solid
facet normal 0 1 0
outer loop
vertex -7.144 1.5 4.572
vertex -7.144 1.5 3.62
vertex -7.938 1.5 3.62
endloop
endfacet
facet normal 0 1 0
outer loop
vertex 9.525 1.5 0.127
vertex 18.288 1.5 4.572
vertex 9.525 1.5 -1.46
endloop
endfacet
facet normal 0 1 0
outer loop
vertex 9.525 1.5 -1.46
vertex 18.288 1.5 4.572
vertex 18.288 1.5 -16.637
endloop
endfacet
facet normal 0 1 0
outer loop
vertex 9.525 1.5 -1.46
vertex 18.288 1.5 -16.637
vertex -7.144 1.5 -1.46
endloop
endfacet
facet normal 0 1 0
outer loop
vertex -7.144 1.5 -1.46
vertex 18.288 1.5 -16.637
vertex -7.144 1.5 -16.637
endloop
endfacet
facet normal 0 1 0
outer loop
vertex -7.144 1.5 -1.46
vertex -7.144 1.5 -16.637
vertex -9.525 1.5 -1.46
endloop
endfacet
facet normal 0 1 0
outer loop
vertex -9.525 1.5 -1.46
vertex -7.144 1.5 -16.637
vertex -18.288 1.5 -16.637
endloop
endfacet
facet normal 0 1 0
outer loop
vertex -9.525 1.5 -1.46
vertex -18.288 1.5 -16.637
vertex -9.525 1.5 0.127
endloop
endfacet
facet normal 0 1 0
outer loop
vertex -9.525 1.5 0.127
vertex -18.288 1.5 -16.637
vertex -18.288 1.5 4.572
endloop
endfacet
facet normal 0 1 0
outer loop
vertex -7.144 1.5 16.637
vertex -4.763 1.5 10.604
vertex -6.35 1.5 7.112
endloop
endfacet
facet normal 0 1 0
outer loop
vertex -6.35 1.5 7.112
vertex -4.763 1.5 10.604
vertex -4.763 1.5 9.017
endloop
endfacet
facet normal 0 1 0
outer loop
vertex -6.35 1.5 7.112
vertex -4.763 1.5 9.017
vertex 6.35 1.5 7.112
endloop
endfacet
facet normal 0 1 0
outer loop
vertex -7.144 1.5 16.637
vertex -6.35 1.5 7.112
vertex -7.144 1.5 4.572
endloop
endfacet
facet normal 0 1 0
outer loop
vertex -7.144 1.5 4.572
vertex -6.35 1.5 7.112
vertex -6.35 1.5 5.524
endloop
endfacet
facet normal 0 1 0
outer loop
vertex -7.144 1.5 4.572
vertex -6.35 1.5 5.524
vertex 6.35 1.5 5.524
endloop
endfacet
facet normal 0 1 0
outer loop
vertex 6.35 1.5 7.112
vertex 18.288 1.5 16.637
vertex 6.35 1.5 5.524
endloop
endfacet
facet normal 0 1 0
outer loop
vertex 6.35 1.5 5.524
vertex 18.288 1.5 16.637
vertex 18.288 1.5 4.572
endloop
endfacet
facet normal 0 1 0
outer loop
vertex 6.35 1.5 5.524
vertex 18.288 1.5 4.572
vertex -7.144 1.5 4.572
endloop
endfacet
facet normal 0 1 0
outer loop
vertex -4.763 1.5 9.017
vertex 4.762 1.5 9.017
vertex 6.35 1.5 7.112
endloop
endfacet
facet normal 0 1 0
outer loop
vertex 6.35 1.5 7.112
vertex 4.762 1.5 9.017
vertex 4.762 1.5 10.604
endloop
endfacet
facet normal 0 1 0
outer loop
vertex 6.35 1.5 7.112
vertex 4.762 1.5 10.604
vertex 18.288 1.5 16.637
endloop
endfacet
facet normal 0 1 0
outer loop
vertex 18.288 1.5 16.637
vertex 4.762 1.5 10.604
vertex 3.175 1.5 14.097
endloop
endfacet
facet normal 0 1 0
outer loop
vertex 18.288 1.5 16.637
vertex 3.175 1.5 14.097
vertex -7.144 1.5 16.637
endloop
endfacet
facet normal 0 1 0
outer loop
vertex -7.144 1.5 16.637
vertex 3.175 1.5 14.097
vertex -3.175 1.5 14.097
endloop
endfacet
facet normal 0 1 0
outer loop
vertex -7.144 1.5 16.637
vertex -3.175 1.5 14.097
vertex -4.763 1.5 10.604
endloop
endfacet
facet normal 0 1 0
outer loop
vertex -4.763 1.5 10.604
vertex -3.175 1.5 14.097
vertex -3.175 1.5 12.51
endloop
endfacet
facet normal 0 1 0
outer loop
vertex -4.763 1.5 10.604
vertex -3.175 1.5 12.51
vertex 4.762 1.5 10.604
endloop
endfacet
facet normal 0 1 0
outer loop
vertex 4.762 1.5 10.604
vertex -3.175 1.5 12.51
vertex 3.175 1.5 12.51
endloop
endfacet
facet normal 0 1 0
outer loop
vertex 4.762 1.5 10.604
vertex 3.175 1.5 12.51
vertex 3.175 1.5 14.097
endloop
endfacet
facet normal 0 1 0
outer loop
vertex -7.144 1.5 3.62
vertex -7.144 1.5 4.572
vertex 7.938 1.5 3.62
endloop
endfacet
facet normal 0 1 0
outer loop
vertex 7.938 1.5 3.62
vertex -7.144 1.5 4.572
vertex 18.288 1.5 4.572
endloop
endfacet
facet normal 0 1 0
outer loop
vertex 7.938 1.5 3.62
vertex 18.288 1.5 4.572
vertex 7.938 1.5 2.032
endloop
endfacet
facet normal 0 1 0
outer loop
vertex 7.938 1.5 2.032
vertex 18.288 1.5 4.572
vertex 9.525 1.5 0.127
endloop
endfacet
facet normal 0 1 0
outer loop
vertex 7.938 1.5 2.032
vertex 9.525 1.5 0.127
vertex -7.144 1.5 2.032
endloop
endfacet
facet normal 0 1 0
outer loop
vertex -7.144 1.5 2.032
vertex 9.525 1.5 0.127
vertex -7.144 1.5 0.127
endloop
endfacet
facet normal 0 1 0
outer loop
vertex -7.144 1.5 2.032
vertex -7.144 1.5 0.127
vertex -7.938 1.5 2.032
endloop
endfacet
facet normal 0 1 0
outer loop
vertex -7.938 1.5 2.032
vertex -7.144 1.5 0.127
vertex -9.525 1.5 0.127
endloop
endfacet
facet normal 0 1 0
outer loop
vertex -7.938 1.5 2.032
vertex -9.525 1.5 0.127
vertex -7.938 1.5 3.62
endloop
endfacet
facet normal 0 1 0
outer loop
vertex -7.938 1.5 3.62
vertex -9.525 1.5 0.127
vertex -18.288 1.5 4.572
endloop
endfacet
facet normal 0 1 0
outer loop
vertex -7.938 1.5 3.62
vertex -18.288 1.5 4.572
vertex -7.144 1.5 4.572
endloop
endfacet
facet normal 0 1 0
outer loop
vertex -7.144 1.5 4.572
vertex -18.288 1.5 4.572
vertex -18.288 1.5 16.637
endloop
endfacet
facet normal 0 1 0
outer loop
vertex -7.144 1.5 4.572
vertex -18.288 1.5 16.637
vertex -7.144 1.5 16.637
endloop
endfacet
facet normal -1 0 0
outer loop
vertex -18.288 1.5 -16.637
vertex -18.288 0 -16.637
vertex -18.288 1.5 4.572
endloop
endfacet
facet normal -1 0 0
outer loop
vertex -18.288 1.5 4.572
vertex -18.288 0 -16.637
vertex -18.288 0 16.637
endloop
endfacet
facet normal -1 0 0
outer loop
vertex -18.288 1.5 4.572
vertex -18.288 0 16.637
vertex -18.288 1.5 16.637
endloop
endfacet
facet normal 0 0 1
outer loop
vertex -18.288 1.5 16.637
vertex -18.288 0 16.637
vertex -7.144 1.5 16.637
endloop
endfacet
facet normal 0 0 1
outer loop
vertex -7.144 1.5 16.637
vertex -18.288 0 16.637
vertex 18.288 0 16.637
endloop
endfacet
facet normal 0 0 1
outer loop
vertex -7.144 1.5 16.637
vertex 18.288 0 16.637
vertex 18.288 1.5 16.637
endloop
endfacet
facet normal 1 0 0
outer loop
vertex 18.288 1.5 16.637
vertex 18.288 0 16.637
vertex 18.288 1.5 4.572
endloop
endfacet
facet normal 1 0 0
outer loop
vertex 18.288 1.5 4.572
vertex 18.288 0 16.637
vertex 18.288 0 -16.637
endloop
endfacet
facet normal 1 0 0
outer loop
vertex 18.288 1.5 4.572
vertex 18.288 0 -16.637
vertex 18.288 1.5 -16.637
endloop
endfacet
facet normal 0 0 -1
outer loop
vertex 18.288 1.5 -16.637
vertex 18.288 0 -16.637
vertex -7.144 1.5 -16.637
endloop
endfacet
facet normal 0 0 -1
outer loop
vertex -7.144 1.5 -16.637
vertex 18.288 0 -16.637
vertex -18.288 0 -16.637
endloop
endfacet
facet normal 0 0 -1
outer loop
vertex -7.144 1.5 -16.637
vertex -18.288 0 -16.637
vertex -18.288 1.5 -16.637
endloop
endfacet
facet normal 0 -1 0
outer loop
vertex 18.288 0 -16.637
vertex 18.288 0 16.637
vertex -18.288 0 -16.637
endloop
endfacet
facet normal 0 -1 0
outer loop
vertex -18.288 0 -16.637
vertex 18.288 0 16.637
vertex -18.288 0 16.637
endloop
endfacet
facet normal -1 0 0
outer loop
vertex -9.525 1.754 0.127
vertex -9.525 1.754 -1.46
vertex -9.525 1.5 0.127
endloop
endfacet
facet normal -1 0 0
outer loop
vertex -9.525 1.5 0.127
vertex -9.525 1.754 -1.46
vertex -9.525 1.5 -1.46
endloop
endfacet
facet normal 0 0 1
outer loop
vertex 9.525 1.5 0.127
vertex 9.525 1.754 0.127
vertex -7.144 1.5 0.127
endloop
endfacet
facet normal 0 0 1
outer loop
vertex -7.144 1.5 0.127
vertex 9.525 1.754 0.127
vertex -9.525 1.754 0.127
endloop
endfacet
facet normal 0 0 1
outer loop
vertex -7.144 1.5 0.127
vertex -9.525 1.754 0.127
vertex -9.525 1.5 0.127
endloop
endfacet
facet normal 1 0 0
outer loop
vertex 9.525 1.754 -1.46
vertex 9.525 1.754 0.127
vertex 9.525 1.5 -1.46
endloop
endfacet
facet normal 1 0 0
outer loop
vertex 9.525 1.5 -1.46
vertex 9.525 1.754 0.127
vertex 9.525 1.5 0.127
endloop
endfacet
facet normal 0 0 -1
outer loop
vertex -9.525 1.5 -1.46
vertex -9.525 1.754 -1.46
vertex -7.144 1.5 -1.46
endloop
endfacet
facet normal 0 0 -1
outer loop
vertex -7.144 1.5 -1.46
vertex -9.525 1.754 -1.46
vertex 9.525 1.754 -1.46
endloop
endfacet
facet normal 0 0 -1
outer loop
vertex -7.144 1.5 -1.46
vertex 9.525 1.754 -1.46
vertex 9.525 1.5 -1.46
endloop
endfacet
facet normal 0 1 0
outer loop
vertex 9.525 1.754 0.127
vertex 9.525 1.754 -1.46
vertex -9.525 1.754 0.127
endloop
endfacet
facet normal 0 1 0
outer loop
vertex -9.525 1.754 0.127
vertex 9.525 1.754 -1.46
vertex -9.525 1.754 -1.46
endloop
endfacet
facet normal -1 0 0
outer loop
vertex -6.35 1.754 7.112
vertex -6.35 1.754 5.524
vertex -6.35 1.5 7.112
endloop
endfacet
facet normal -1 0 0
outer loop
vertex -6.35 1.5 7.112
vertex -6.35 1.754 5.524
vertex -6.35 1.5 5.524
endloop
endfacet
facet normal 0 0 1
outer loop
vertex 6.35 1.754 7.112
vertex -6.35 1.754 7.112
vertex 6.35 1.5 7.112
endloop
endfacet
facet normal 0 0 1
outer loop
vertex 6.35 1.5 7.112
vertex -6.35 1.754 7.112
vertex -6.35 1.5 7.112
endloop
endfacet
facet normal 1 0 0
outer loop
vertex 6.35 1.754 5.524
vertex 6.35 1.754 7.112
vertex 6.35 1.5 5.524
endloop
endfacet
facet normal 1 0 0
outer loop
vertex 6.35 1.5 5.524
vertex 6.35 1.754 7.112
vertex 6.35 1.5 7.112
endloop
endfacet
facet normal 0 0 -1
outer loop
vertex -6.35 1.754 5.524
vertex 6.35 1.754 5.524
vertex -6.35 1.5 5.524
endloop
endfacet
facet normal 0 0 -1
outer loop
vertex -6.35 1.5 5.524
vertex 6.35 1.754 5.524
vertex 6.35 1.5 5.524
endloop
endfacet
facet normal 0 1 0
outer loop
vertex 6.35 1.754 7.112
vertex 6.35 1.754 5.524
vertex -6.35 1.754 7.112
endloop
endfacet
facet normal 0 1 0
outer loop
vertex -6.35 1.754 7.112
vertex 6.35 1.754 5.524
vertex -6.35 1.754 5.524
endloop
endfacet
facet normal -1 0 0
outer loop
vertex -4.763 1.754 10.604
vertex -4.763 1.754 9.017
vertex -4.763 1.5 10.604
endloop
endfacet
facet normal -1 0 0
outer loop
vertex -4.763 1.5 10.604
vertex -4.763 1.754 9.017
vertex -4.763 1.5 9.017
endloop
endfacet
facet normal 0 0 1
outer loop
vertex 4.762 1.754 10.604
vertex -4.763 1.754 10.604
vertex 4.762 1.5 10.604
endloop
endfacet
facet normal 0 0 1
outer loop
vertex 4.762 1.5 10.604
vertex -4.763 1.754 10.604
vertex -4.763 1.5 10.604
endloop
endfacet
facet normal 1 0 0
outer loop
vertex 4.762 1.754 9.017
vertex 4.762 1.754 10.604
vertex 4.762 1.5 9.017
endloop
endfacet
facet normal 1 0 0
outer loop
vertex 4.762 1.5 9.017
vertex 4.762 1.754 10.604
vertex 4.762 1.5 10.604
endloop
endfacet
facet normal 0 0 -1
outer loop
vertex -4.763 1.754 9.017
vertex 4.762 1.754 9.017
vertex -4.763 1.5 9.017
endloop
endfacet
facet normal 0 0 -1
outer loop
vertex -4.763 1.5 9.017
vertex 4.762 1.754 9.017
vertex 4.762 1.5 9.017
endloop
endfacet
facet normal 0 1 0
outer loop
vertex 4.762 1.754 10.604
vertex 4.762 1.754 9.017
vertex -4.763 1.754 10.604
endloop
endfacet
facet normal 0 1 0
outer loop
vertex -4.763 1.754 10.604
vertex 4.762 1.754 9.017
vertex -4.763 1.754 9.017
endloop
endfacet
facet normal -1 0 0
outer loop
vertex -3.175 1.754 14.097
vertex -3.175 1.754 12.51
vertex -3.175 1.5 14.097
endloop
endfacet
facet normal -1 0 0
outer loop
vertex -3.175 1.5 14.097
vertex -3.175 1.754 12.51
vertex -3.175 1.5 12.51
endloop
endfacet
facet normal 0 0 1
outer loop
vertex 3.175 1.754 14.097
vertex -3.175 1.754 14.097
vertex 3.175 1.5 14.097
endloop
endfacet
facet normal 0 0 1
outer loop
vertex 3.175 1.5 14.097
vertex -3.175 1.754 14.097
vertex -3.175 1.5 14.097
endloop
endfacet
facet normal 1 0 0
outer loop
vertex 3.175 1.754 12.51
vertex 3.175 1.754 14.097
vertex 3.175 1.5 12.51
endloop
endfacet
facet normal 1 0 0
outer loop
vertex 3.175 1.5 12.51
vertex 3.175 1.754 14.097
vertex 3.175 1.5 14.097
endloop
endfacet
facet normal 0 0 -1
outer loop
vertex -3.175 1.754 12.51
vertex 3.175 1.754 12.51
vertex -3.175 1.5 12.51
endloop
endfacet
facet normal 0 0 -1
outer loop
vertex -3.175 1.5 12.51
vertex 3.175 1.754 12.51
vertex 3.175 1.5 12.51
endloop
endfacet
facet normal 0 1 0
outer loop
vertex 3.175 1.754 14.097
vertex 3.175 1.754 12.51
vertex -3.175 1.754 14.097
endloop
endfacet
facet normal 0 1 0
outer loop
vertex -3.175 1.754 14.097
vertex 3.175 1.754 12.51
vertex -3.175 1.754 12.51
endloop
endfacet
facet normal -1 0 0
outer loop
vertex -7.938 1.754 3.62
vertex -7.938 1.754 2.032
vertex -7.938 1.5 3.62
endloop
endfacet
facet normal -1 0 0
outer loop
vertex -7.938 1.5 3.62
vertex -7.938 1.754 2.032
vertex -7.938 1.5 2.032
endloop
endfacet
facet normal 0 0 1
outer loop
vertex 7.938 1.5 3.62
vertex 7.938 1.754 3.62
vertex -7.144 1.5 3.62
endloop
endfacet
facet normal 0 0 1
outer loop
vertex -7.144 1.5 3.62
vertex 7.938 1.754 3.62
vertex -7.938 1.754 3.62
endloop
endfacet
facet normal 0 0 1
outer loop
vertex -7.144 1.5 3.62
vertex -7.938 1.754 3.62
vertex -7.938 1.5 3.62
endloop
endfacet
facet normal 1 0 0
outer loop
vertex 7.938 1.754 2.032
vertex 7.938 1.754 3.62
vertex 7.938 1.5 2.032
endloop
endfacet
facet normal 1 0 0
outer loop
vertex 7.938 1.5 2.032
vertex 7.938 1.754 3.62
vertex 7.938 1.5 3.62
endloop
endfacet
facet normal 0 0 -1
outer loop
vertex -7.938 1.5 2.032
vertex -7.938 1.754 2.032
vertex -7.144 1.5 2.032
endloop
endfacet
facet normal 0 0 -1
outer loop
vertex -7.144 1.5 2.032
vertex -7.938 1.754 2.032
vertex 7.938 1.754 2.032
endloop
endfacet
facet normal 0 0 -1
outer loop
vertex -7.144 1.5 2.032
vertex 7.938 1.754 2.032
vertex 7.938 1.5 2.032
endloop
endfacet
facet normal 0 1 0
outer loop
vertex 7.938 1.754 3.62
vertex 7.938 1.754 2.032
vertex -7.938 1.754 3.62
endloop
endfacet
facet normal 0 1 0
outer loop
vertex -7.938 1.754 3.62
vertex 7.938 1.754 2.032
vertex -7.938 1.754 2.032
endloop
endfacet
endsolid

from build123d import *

# Parameters (mm, degrees)
SKETCH1_W           = 36.576
SKETCH1_H           = 33.274
BOSS_EXTRUDE1_DEPTH = 1.499997
SKETCH2_W           = 19.05
SKETCH2_H           = 1.5875
SKETCH2_W_2         = 12.7
SKETCH2_W_3         = 9.525
SKETCH2_W_4         = 6.35
SKETCH2_W_5         = 15.875
BOSS_EXTRUDE2_DEPTH = 0.254


with BuildPart() as part:
    # Sketch1 → Boss-Extrude1 (new body)
    with BuildSketch(Plane(origin=(0, 0, 0), x_dir=(1, 0, 0), z_dir=(0, 1, 0))):
        Rectangle(SKETCH1_W, SKETCH1_H)
    extrude(amount=BOSS_EXTRUDE1_DEPTH)

    # Sketch2 → Boss-Extrude2 (add)
    with BuildSketch(Plane(origin=(0, 1.499997, 0), x_dir=(1, 0, 0), z_dir=(0, 1, 0))):
        with Locations((0, 0.66675)):
            Rectangle(SKETCH2_W, SKETCH2_H)
        with Locations((0, -6.31825)):
            Rectangle(SKETCH2_W_2, SKETCH2_H)
        with Locations((0, -9.81075)):
            Rectangle(SKETCH2_W_3, SKETCH2_H)
        with Locations((0, -13.30325)):
            Rectangle(SKETCH2_W_4, SKETCH2_H)
        with Locations((0, -2.82575)):
            Rectangle(SKETCH2_W_5, SKETCH2_H)
    extrude(amount=BOSS_EXTRUDE2_DEPTH)


solid = part.part
